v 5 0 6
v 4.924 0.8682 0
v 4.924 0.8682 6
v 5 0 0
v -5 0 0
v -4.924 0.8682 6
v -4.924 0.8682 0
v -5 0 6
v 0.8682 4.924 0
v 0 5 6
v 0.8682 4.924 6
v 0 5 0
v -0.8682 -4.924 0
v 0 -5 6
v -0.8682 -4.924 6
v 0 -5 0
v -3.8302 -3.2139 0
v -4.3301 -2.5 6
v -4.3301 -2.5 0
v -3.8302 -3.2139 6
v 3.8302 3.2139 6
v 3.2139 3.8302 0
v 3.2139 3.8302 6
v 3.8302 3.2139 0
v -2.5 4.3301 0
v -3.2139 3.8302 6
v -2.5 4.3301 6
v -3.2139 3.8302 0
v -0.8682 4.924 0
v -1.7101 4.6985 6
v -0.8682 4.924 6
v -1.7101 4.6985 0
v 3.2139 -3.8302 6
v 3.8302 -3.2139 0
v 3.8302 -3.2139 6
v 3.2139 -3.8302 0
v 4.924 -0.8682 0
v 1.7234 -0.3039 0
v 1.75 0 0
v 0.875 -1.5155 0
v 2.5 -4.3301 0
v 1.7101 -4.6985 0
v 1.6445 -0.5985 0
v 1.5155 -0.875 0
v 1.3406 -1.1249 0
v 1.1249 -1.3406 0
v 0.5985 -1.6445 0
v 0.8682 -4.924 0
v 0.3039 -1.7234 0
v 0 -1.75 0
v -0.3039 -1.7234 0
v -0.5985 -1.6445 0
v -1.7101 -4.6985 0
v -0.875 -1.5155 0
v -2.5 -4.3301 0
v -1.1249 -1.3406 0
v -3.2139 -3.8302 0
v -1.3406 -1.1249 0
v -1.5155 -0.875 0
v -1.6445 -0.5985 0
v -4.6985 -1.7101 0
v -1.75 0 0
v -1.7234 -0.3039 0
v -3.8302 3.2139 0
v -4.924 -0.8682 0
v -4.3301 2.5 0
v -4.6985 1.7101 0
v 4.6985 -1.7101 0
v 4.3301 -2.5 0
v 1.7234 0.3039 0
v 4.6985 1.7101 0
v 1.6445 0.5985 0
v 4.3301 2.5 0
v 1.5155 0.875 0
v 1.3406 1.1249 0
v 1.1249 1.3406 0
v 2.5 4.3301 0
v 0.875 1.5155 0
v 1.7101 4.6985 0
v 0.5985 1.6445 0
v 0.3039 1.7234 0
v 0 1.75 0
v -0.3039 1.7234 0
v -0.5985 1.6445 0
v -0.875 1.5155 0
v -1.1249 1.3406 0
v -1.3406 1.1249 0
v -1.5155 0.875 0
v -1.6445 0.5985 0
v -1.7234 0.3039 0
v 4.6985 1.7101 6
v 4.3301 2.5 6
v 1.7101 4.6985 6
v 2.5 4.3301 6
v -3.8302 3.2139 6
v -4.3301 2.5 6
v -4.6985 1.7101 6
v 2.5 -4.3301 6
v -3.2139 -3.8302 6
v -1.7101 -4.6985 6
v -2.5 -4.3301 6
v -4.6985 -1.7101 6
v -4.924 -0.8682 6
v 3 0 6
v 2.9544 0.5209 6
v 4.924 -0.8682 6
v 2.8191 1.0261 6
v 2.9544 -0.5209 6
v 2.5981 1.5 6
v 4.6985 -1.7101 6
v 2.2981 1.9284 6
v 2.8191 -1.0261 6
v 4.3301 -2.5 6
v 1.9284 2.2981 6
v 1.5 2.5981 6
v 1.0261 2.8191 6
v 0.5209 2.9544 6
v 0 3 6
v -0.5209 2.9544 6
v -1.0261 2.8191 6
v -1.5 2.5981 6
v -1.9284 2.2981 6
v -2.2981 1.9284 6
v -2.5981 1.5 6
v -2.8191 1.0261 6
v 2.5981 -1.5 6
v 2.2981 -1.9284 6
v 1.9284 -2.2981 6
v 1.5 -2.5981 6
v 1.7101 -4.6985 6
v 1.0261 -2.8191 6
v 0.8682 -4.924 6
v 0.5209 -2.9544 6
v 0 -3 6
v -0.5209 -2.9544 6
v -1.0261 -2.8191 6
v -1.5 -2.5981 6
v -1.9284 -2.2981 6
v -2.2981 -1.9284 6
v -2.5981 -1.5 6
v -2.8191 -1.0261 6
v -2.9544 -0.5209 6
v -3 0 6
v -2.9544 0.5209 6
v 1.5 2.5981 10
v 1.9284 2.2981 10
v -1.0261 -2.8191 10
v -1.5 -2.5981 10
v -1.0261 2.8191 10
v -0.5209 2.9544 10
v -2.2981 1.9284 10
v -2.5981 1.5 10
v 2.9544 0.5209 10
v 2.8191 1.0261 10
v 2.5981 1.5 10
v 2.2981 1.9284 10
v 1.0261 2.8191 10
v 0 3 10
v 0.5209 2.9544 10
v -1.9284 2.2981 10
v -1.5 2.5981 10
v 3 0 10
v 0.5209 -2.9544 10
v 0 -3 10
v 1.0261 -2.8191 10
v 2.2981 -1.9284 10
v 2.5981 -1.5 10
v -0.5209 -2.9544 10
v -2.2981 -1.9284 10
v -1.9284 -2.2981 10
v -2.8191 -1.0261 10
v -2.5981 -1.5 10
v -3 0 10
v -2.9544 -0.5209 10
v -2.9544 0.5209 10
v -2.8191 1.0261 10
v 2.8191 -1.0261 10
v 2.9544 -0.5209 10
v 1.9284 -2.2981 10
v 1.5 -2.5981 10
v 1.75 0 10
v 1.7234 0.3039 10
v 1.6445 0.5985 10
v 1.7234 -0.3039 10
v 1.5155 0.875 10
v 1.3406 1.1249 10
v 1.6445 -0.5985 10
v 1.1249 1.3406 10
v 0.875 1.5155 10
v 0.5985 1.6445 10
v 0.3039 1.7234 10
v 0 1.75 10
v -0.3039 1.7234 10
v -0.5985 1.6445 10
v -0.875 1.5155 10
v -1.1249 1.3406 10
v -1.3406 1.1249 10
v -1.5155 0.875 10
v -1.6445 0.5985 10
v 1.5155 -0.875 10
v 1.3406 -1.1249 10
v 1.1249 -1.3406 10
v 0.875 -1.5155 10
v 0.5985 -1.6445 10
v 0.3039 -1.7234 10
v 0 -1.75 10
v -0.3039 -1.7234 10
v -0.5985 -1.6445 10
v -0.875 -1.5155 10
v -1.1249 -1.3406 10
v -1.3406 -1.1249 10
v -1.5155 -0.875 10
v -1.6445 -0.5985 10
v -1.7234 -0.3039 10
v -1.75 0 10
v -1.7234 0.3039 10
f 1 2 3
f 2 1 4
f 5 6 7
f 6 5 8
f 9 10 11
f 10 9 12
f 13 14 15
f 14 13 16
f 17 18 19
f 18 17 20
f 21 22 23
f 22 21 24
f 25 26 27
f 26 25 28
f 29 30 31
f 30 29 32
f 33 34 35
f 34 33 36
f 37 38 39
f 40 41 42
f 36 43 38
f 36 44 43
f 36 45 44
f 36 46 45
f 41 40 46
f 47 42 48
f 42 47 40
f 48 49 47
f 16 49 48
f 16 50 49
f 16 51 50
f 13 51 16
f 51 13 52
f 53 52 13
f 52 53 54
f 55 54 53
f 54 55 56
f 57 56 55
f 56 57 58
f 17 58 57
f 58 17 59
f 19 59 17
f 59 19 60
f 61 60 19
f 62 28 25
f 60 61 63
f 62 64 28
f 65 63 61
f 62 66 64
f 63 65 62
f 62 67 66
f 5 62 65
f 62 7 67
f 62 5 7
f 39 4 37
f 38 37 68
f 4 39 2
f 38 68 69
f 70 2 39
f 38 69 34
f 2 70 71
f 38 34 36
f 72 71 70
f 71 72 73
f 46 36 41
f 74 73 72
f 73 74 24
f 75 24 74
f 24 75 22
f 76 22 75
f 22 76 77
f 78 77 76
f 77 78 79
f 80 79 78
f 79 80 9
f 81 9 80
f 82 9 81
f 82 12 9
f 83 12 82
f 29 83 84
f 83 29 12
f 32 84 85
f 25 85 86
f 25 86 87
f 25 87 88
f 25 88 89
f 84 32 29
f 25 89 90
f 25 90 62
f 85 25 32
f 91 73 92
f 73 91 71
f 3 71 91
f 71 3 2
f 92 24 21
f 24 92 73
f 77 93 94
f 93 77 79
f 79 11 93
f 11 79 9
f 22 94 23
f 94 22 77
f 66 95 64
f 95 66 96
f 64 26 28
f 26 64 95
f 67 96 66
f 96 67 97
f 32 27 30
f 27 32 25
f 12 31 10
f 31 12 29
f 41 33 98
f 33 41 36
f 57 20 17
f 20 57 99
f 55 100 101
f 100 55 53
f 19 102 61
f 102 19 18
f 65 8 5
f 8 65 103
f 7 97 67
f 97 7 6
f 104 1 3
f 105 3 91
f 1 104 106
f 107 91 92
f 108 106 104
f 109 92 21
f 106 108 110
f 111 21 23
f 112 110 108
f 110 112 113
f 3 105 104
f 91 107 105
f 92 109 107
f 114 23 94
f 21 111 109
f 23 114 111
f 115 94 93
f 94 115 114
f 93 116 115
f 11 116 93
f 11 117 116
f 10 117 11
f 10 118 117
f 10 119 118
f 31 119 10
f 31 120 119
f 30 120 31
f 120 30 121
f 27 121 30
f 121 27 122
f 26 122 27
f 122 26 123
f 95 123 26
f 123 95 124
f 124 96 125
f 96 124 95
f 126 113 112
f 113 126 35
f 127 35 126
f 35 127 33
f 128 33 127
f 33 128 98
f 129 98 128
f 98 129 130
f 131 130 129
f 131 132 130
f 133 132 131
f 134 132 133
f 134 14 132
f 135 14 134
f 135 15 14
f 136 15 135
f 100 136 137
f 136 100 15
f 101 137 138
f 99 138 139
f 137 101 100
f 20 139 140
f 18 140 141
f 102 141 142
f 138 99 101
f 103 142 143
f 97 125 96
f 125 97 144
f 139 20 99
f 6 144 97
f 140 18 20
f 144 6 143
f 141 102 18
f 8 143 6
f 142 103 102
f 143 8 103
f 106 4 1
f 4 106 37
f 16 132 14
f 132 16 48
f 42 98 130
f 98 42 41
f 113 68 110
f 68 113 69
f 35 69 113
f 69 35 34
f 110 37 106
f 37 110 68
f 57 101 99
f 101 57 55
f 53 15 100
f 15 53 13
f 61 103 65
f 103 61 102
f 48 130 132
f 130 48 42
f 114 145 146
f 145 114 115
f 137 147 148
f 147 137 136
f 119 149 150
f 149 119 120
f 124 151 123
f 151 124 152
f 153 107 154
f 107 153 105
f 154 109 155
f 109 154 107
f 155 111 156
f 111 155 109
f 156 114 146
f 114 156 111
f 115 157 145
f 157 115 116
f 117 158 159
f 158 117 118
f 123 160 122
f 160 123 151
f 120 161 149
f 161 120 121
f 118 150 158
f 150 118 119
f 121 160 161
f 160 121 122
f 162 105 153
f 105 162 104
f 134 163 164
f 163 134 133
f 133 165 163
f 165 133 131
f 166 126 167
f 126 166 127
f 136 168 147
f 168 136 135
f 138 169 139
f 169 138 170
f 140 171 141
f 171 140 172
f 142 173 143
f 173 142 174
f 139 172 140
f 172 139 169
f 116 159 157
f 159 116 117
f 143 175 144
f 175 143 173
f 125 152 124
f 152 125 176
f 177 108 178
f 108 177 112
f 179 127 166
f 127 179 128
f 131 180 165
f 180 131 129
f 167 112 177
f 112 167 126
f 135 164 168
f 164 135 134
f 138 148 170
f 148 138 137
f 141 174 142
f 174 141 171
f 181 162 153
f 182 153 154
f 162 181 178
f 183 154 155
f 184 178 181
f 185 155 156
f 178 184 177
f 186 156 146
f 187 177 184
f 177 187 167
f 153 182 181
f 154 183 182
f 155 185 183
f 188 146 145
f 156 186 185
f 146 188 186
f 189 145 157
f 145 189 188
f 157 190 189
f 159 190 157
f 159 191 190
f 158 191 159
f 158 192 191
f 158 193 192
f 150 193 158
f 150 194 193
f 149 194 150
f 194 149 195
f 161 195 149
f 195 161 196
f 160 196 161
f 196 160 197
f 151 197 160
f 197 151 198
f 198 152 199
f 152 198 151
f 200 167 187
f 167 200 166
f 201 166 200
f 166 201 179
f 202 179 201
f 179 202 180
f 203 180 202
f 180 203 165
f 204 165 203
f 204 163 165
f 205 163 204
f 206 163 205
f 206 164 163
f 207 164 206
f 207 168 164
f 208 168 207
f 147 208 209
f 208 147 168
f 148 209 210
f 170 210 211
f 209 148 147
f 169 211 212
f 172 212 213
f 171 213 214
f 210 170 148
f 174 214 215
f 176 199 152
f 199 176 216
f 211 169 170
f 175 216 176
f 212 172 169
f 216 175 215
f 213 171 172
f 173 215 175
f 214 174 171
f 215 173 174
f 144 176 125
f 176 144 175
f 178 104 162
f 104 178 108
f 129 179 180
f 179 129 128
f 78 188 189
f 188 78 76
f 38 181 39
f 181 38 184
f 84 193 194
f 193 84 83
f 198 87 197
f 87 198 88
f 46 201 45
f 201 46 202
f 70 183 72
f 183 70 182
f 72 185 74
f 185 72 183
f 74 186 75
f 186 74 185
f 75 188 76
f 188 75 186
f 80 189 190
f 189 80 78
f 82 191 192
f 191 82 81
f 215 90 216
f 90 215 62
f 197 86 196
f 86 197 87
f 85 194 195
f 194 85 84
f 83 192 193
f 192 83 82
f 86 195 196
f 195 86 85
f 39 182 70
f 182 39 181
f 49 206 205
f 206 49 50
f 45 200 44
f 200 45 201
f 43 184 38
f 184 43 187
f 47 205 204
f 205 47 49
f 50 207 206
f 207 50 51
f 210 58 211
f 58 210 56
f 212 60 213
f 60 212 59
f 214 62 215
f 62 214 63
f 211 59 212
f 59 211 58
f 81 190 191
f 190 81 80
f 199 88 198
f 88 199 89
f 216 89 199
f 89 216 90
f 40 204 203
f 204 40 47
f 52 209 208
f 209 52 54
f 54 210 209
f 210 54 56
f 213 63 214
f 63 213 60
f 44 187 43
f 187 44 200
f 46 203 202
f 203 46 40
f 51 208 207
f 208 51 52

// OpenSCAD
$fn=36;
difference()
{
	union()
	{
		cylinder(d=10,h=6);
		cylinder(d=6,h=10);
	}
	cylinder(d=3.5,h=12);
}
